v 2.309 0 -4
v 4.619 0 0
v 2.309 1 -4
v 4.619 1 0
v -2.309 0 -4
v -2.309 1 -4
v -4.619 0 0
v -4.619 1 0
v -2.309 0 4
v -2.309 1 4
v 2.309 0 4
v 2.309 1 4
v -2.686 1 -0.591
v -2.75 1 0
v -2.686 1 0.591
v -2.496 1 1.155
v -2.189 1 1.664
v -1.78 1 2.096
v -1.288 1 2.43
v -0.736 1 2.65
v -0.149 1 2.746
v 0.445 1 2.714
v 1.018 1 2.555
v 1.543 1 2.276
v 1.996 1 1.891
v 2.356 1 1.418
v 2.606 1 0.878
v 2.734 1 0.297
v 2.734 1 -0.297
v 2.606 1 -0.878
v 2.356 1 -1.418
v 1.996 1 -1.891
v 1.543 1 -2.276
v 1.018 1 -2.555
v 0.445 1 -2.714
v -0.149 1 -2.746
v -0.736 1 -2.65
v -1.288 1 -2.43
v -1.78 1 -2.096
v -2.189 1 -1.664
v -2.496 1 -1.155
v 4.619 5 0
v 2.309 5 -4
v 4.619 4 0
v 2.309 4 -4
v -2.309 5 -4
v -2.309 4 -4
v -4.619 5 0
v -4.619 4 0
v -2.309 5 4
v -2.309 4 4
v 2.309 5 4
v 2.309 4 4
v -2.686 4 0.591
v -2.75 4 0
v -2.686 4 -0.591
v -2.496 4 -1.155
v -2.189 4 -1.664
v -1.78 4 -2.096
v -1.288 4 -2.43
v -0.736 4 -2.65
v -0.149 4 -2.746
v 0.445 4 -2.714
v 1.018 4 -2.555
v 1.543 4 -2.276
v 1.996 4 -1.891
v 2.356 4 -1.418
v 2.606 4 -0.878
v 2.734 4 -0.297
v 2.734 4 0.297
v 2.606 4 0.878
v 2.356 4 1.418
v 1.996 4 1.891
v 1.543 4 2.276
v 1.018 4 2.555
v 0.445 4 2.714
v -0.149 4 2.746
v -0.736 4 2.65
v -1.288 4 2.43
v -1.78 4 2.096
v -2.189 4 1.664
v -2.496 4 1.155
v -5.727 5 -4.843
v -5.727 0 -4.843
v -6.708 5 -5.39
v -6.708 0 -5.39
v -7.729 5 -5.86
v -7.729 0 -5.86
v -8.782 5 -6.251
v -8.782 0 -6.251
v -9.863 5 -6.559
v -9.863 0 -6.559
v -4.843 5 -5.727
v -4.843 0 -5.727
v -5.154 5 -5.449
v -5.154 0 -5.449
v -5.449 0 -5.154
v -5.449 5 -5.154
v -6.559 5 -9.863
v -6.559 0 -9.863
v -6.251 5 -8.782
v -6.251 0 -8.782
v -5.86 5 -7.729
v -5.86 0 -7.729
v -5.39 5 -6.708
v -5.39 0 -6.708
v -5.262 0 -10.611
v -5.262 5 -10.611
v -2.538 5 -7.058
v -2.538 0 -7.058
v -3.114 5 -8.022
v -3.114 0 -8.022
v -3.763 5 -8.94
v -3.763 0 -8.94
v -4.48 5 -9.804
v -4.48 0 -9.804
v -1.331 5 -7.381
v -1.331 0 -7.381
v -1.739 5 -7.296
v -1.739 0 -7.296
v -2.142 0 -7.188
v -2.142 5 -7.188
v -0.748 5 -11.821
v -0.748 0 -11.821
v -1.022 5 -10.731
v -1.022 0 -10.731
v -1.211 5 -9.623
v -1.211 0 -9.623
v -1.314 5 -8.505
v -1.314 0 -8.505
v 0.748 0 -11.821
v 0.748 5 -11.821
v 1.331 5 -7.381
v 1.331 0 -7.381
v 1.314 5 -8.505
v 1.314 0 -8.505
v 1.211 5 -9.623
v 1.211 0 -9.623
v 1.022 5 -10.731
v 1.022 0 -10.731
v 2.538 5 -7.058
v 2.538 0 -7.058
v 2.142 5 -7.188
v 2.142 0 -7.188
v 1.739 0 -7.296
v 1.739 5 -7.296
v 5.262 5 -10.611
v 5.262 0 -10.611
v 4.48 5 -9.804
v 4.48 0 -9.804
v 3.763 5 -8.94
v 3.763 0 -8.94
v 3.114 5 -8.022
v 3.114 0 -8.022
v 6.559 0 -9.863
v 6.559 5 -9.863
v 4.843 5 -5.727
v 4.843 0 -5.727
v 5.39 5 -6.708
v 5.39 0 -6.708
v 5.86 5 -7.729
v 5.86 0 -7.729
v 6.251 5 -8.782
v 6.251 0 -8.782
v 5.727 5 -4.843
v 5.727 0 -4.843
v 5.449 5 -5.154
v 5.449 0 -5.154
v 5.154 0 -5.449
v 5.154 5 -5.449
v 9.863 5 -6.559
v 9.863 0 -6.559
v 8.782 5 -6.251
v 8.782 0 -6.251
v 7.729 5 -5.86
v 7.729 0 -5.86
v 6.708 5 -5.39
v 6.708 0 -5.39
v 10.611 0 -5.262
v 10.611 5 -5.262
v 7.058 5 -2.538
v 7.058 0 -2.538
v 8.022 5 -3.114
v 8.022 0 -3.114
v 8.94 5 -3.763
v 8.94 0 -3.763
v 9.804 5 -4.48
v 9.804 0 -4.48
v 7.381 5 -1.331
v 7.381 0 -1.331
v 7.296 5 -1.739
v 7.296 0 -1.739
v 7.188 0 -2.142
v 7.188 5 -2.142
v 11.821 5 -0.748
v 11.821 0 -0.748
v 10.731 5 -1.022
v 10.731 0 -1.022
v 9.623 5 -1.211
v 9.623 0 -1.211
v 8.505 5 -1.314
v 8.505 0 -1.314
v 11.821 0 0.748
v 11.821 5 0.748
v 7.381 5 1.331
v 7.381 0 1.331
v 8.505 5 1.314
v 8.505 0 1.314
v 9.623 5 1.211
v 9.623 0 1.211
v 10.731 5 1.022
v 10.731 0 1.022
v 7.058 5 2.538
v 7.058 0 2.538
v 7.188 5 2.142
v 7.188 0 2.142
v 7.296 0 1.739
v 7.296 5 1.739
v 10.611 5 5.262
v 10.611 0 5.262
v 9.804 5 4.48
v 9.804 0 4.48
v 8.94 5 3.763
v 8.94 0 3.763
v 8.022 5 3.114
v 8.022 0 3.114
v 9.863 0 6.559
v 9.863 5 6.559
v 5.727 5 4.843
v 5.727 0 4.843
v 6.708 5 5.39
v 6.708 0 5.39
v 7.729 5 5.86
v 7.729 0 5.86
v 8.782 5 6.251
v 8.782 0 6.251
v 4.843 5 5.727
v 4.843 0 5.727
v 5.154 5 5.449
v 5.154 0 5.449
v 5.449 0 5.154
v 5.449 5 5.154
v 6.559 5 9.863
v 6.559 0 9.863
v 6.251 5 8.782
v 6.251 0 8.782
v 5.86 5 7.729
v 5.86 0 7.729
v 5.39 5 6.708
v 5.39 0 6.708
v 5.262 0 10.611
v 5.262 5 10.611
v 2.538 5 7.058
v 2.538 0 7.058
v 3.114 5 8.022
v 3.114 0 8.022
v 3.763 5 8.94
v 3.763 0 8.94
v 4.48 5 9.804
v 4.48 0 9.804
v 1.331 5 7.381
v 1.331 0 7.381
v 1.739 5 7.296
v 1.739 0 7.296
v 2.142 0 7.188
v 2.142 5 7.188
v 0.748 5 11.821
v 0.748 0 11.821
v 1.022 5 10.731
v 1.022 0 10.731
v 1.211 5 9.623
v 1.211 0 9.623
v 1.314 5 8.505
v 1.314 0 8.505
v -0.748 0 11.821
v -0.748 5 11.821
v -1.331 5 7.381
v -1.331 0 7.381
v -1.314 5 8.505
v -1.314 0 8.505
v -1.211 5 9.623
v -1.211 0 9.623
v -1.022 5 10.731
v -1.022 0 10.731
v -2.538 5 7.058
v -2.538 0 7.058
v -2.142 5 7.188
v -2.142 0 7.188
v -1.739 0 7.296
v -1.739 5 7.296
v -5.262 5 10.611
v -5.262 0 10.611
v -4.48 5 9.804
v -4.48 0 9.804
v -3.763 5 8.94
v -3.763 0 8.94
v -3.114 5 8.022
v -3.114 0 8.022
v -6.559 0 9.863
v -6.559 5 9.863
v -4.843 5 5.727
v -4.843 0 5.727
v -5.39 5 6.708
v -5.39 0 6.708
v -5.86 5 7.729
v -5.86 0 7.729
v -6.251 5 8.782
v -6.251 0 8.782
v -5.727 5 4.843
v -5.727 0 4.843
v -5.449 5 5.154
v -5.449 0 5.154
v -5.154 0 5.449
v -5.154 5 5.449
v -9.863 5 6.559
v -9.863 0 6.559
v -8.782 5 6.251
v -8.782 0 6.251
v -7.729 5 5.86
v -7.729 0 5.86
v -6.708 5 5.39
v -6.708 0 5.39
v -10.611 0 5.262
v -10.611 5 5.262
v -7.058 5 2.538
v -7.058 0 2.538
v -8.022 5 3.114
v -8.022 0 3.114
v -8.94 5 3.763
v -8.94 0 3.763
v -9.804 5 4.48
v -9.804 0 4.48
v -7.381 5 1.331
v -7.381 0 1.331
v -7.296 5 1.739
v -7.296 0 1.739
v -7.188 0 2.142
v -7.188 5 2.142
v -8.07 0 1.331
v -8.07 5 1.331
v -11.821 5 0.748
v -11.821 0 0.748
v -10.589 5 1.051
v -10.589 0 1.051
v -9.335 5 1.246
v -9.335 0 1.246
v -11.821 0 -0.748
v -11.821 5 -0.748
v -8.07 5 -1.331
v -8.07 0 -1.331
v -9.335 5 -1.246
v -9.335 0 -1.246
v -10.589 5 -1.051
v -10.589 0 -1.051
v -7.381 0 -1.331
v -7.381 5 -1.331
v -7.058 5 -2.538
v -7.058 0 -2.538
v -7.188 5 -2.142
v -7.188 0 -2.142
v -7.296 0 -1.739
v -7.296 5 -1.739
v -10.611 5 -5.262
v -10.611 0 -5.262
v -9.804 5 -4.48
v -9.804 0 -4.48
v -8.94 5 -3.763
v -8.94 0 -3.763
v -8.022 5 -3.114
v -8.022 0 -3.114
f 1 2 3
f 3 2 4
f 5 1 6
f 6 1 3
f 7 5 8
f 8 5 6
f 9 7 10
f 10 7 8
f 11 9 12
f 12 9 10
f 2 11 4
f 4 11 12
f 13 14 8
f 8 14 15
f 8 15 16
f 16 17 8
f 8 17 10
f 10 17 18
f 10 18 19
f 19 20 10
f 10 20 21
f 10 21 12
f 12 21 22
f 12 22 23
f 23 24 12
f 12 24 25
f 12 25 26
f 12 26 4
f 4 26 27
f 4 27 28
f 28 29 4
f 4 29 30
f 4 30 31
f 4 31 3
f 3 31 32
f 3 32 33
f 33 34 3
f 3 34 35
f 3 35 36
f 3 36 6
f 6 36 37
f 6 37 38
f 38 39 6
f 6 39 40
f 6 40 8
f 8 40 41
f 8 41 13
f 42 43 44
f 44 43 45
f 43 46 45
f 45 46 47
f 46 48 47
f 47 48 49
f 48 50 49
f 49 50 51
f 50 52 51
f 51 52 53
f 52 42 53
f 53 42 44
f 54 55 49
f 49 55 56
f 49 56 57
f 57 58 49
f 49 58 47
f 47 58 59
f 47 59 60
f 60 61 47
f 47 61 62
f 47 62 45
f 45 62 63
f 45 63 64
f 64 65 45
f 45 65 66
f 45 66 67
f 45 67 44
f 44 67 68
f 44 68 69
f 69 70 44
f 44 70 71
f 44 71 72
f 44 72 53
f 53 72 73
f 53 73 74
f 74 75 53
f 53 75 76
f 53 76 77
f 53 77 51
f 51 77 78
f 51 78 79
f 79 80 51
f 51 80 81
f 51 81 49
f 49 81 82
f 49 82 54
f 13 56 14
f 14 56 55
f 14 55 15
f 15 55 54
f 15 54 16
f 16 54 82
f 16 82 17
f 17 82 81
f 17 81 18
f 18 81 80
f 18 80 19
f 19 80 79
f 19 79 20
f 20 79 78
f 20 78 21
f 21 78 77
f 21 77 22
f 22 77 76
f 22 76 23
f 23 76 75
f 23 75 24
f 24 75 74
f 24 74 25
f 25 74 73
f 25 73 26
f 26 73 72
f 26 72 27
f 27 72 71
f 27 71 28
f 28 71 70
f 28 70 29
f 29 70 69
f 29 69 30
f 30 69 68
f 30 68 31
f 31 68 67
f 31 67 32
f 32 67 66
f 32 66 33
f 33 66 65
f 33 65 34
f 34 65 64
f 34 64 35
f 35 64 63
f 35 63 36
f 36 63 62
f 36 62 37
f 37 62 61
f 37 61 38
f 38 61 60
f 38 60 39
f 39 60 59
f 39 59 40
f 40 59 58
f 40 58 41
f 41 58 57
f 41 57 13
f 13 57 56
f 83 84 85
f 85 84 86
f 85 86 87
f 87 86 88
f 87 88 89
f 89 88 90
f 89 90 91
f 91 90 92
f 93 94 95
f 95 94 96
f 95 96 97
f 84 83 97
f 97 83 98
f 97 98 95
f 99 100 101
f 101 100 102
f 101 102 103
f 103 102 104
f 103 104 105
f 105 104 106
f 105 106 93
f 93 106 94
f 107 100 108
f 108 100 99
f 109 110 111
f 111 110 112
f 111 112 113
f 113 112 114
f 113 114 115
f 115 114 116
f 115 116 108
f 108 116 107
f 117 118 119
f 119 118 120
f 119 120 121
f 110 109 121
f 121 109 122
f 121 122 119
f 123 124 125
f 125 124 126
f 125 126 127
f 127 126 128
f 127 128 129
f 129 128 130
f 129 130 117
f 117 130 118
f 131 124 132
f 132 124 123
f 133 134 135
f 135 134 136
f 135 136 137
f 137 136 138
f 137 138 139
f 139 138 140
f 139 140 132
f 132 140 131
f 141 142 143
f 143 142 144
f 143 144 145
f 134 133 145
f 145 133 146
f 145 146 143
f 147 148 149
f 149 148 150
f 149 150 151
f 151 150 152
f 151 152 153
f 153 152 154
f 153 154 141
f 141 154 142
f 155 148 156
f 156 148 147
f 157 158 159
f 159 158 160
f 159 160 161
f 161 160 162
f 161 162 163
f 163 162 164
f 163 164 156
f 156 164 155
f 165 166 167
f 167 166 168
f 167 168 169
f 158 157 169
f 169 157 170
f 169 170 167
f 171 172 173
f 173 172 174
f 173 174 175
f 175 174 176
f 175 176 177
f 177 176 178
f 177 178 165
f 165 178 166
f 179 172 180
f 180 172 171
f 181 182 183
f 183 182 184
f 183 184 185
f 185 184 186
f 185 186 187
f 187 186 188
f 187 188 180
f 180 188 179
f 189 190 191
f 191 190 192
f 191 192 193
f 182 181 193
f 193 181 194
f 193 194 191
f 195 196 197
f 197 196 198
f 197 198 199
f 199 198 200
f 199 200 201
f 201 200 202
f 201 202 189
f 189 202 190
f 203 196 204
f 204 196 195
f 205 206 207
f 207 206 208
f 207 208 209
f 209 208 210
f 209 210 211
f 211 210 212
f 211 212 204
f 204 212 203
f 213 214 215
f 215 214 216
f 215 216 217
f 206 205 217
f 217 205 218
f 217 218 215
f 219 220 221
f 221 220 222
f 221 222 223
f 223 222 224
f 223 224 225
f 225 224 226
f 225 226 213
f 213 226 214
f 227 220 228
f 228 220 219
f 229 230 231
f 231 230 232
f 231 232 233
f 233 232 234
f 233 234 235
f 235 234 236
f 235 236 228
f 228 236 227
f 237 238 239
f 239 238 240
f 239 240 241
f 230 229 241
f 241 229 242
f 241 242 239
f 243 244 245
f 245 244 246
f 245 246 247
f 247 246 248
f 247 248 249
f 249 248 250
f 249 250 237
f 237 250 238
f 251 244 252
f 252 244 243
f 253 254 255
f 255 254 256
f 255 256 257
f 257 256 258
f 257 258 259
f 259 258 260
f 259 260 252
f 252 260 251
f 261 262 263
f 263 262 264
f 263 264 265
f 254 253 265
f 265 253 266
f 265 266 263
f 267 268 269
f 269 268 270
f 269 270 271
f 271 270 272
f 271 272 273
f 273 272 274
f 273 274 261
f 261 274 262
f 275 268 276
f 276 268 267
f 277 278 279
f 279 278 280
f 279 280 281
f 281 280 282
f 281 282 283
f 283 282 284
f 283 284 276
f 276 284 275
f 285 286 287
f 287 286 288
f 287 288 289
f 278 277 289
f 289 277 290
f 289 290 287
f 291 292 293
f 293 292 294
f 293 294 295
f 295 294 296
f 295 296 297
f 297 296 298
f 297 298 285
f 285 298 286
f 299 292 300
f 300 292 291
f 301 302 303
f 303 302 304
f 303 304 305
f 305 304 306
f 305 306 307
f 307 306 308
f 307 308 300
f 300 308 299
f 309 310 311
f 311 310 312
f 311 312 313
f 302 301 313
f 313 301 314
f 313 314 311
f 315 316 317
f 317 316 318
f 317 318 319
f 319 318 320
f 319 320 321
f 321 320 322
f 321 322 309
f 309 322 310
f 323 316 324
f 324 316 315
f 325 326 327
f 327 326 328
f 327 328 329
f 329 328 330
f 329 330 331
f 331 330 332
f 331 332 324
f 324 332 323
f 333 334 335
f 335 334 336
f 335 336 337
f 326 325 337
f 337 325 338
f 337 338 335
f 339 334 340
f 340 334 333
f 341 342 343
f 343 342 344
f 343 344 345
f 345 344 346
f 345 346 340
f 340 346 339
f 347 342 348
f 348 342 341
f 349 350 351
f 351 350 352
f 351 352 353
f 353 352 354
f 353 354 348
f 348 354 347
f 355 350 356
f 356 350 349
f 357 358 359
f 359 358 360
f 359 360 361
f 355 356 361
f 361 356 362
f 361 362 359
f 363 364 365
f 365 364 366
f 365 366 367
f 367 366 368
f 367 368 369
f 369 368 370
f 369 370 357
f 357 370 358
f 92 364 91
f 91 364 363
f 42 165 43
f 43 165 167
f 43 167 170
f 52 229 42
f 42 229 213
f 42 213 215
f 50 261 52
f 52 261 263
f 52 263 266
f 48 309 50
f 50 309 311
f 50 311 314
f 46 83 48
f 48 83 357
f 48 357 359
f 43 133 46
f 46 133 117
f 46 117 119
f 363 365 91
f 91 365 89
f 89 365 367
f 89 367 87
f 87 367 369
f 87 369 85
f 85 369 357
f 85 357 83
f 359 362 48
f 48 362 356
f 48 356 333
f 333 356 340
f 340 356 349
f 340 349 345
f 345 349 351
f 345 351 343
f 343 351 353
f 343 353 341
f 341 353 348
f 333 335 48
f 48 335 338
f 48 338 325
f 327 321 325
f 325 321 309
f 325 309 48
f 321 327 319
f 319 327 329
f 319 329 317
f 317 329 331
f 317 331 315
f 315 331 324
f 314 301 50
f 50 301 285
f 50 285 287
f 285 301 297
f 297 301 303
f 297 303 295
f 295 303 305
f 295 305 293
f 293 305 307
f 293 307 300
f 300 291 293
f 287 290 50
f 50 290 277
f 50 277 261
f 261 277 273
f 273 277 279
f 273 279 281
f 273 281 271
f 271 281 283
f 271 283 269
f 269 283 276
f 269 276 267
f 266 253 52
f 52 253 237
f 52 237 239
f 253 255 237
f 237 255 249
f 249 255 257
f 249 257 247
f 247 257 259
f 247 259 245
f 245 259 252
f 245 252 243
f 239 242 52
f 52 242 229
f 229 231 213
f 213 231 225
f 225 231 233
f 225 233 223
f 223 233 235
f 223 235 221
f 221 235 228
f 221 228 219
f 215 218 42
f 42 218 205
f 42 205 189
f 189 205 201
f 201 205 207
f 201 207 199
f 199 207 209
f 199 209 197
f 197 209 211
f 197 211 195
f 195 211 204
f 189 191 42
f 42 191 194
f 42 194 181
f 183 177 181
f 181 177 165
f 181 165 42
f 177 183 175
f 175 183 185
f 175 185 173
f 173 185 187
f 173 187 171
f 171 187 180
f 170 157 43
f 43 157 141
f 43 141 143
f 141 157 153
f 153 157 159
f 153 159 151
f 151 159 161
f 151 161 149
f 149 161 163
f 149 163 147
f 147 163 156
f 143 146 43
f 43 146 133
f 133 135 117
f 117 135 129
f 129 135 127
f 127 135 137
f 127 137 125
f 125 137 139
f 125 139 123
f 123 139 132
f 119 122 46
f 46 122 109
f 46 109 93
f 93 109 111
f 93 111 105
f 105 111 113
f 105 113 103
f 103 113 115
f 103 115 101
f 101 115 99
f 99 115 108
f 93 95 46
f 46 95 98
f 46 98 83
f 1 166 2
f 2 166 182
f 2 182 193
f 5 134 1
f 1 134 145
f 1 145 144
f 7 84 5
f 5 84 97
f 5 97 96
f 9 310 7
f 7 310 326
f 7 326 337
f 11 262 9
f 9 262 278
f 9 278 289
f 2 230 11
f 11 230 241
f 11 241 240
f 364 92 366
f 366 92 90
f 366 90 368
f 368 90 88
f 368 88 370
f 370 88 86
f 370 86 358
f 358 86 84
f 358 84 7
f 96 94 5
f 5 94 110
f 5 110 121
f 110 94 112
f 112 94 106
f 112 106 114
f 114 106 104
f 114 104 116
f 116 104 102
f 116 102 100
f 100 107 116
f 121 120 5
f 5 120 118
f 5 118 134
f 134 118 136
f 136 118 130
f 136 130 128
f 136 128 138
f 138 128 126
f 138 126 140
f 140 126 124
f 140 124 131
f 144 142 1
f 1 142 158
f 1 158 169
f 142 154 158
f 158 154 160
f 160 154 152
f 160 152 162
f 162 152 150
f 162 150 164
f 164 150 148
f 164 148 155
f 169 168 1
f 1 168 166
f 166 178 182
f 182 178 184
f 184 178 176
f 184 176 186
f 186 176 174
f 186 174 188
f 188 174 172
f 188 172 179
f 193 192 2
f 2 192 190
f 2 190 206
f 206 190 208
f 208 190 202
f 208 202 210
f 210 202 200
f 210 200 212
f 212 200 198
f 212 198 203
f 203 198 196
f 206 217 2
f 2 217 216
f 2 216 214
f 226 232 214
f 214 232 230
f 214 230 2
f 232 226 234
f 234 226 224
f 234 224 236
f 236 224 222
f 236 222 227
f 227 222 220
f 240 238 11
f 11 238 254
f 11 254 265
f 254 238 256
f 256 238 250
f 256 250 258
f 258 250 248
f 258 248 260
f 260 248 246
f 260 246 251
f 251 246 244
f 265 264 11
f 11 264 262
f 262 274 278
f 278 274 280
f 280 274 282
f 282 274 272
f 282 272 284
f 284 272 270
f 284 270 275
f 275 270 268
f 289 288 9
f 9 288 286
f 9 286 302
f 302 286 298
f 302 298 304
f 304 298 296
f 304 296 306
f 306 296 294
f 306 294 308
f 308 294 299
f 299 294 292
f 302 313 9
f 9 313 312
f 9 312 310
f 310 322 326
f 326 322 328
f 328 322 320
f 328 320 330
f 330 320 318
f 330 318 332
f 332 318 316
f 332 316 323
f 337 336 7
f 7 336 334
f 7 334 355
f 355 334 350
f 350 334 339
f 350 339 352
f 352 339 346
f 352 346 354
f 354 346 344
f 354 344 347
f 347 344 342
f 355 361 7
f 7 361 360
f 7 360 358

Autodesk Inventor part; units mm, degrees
ref_plane "YZ Plane" through (0, 0, 0) normal (1, 0, 0) x (0, 1, 0)
ref_plane "XZ Plane" through (0, 0, 0) normal (0, 1, 0) x (-1, 0, 0)
ref_plane "XY Plane" through (0, 0, 0) normal (0, 0, 1) x (1, 0, 0)
sketch "Sketch1" plane through (0, 0, 0) normal (0, 1, 0) x (-1, 0, 0)
  circle A0 centre (0, 0) radius 7.5
  line L0 (8.0698, 1.3309) -> (7.381, 1.3309)
  line L1 (7.381, -1.3309) -> (8.0698, -1.3309)
  line L2 (12.3774, -0.5735) -> (12.3774, -0.474)
  line L3 (12.3774, 1.3309) -> (7.5, 0) construction
  line L4 (7.5, 0) -> (12.3774, -1.3309) construction
  line L5 (11.8209, 0) -> (11.8209, 0.7484)
  arc A1 (11.8209, 0.7484) -> (7.381, 1.3309) centre (7.7254, -13.2556) ccw
  line L6 (7.5, 0) -> (12.3774, 0)
  line L7 (12.3774, -1.3309) -> (7.5, 0) construction
  line L8 (11.8209, 0) -> (11.8209, -0.7484)
  arc A2 (7.381, -1.3309) -> (11.8209, -0.7484) centre (7.7254, 13.2556) ccw
  arc A3 (5.7266, -4.8431) -> (9.863, -6.5586) centre (13.3182, 7.617) ccw
  arc A4 (10.6114, -5.2623) -> (7.0576, -2.5379) centre (0.0626, -15.3424) ccw
  line L9 (10.2372, -5.9105) -> (10.6114, -5.2623)
  line L10 (10.2372, -5.9105) -> (9.863, -6.5586)
  arc A5 (2.5379, -7.0576) -> (5.2623, -10.6114) centre (15.3424, -0.0626) ccw
  arc A6 (6.5586, -9.863) -> (4.8431, -5.7266) centre (-7.617, -13.3182) ccw
  line L11 (5.9105, -10.2372) -> (6.5586, -9.863)
  line L12 (5.9105, -10.2372) -> (5.2623, -10.6114)
  arc A7 (-1.3309, -7.381) -> (-0.7484, -11.8209) centre (13.2556, -7.7254) ccw
  arc A8 (0.7484, -11.8209) -> (1.3309, -7.381) centre (-13.2556, -7.7254) ccw
  line L13 (0, -11.8209) -> (0.7484, -11.8209)
  line L14 (0, -11.8209) -> (-0.7484, -11.8209)
  arc A9 (-4.8431, -5.7266) -> (-6.5586, -9.863) centre (7.617, -13.3182) ccw
  arc A10 (-5.2623, -10.6114) -> (-2.5379, -7.0576) centre (-15.3424, -0.0626) ccw
  line L15 (-5.9105, -10.2372) -> (-5.2623, -10.6114)
  line L16 (-5.9105, -10.2372) -> (-6.5586, -9.863)
  arc A11 (-7.0576, -2.5379) -> (-10.6114, -5.2623) centre (-0.0626, -15.3424) ccw
  arc A12 (-9.863, -6.5586) -> (-5.7266, -4.8431) centre (-13.3182, 7.617) ccw
  line L17 (-10.2372, -5.9105) -> (-9.863, -6.5586)
  line L18 (-10.2372, -5.9105) -> (-10.6114, -5.2623)
  arc A13 (-7.381, 1.3309) -> (-11.8209, 0.7484) centre (-7.7254, -13.2556) ccw
  arc A14 (-11.8209, -0.7484) -> (-7.381, -1.3309) centre (-7.7254, 13.2556) ccw
  line L19 (-11.8209, 0) -> (-11.8209, -0.7484)
  line L20 (-11.8209, 0) -> (-11.8209, 0.7484)
  arc A15 (-5.7266, 4.8431) -> (-9.863, 6.5586) centre (-13.3182, -7.617) ccw
  arc A16 (-10.6114, 5.2623) -> (-7.0576, 2.5379) centre (-0.0626, 15.3424) ccw
  line L21 (-10.2372, 5.9105) -> (-10.6114, 5.2623)
  line L22 (-10.2372, 5.9105) -> (-9.863, 6.5586)
  arc A17 (-2.5379, 7.0576) -> (-5.2623, 10.6114) centre (-15.3424, 0.0626) ccw
  arc A18 (-6.5586, 9.863) -> (-4.8431, 5.7266) centre (7.617, 13.3182) ccw
  line L23 (-5.9105, 10.2372) -> (-6.5586, 9.863)
  line L24 (-5.9105, 10.2372) -> (-5.2623, 10.6114)
  arc A19 (1.3309, 7.381) -> (0.7484, 11.8209) centre (-13.2556, 7.7254) ccw
  arc A20 (-0.7484, 11.8209) -> (-1.3309, 7.381) centre (13.2556, 7.7254) ccw
  line L25 (0, 11.8209) -> (-0.7484, 11.8209)
  line L26 (0, 11.8209) -> (0.7484, 11.8209)
  arc A21 (4.8431, 5.7266) -> (6.5586, 9.863) centre (-7.617, 13.3182) ccw
  arc A22 (5.2623, 10.6114) -> (2.5379, 7.0576) centre (15.3424, 0.0626) ccw
  line L27 (5.9105, 10.2372) -> (5.2623, 10.6114)
  line L28 (5.9105, 10.2372) -> (6.5586, 9.863)
  arc A23 (7.0576, 2.5379) -> (10.6114, 5.2623) centre (0.0626, 15.3424) ccw
  arc A24 (9.863, 6.5586) -> (5.7266, 4.8431) centre (13.3182, -7.617) ccw
  line L29 (10.2372, 5.9105) -> (9.863, 6.5586)
  line L30 (10.2372, 5.9105) -> (10.6114, 5.2623)
  line L31 (2.6226, -0.9781) -> (2.6226, -1.001)
  line L32 (2.6226, 1.001) -> (2.6226, 0.9781)
  line L33 (2.6226, 0.4136) -> (2.6226, 0.391)
  circle A25 centre (0, 0) radius 2.75
  point P0 (10.4324, -6.6853)
  point P1 (6.3232, -5.1875)
  point P2 (7.6541, -2.8823)
  point P3 (5.692, -11.0058)
  point P4 (2.8823, -7.6541)
  point P5 (5.1875, -6.3232)
  point P6 (-0.5735, -12.3774)
  point P7 (-1.3309, -8.0698)
  point P8 (1.3309, -8.0698)
  point P9 (-6.6853, -10.4324)
  point P10 (-5.1875, -6.3232)
  point P11 (-2.8823, -7.6541)
  point P12 (-11.0058, -5.692)
  point P13 (-7.6541, -2.8823)
  point P14 (-6.3232, -5.1875)
  point P15 (-12.3774, 0.5735)
  point P16 (-8.0698, 1.3309)
  point P17 (-8.0698, -1.3309)
  point P18 (-10.4324, 6.6853)
  point P19 (-6.3232, 5.1875)
  point P20 (-7.6541, 2.8823)
  point P21 (-5.692, 11.0058)
  point P22 (-2.8823, 7.6541)
  point P23 (-5.1875, 6.3232)
  point P24 (0.5735, 12.3774)
  point P25 (1.3309, 8.0698)
  point P26 (-1.3309, 8.0698)
  point P27 (6.6853, 10.4324)
  point P28 (5.1875, 6.3232)
  point P29 (2.8823, 7.6541)
  point P30 (11.0058, 5.692)
  point P31 (7.6541, 2.8823)
  point P32 (6.3232, 5.1875)
  point P33 (7.0576, -2.5379)
  point P34 (7.0576, 2.5379)
  point P35 (5.7266, 4.8431)
  point P36 (4.8431, 5.7266)
  point P37 (2.5379, 7.0576)
  point P38 (1.3309, 7.381)
  point P39 (-1.3309, 7.381)
  point P40 (-2.5379, 7.0576)
  point P41 (-4.8431, 5.7266)
  point P42 (-5.7266, 4.8431)
  point P43 (-7.0576, 2.5379)
  point P44 (-7.381, 1.3309)
  point P45 (-7.381, -1.3309)
  point P46 (-7.0576, -2.5379)
  point P47 (-5.7266, -4.8431)
  point P48 (-4.8431, -5.7266)
  point P49 (-2.5379, -7.0576)
  point P50 (-1.3309, -7.381)
  point P51 (1.3309, -7.381)
  point P52 (2.5379, -7.0576)
  point P53 (4.8431, -5.7266)
  dimension "d0" = 15
  dimension "d3" = 360
  dimension "d5" = 5.5
extrude "Extrusion1" add sketch "Sketch1" along normal blind 5 contours A0 | L6 L8 A2 L1 A0 | A0 L0 A1 L5 L6 | A0 A24 L29 L30 A23 | A4 L9 L10 A3 A0 | A0 A22 L27 L28 A21 | A6 L11 L12 A5 A0 | A0 A20 L25 L26 A19 | A8 L13 L14 A7 A0 | A0 A18 L23 L24 A17 | A10 L15 L16 A9 A0 | A0 A16 L21 L22 A15 | A12 L17 L18 A11 A0 | A0 A14 L19 L20 A13
sketch "Sketch2" plane through (0, 5, 0) normal (0, 1, 0) x (1, 0, 0)
  line L0 (-2.3094, 4) -> (2.3094, 4)
  line L1 (2.3094, 4) -> (4.6188, 0)
  line L2 (4.6188, 0) -> (2.3094, -4)
  line L3 (2.3094, -4) -> (-2.3094, -4)
  line L4 (-2.3094, -4) -> (-4.6188, 0)
  line L5 (-4.6188, 0) -> (-2.3094, 4)
  line L6 (0, 0) -> (-6.3613, 0)
  dimension "d8" = 8
extrude "Extrusion2" cut sketch "Sketch2" against normal blind 1
ref_plane "Work Plane1" through (0, 2.5, 0) normal (0, 1, 0) x (1, 0, 0)
mirror "Mirror1" about plane through (0, 2.5, 0) normal (0, 1, 0) of "Extrusion2"
properties part number "JointFixer"
